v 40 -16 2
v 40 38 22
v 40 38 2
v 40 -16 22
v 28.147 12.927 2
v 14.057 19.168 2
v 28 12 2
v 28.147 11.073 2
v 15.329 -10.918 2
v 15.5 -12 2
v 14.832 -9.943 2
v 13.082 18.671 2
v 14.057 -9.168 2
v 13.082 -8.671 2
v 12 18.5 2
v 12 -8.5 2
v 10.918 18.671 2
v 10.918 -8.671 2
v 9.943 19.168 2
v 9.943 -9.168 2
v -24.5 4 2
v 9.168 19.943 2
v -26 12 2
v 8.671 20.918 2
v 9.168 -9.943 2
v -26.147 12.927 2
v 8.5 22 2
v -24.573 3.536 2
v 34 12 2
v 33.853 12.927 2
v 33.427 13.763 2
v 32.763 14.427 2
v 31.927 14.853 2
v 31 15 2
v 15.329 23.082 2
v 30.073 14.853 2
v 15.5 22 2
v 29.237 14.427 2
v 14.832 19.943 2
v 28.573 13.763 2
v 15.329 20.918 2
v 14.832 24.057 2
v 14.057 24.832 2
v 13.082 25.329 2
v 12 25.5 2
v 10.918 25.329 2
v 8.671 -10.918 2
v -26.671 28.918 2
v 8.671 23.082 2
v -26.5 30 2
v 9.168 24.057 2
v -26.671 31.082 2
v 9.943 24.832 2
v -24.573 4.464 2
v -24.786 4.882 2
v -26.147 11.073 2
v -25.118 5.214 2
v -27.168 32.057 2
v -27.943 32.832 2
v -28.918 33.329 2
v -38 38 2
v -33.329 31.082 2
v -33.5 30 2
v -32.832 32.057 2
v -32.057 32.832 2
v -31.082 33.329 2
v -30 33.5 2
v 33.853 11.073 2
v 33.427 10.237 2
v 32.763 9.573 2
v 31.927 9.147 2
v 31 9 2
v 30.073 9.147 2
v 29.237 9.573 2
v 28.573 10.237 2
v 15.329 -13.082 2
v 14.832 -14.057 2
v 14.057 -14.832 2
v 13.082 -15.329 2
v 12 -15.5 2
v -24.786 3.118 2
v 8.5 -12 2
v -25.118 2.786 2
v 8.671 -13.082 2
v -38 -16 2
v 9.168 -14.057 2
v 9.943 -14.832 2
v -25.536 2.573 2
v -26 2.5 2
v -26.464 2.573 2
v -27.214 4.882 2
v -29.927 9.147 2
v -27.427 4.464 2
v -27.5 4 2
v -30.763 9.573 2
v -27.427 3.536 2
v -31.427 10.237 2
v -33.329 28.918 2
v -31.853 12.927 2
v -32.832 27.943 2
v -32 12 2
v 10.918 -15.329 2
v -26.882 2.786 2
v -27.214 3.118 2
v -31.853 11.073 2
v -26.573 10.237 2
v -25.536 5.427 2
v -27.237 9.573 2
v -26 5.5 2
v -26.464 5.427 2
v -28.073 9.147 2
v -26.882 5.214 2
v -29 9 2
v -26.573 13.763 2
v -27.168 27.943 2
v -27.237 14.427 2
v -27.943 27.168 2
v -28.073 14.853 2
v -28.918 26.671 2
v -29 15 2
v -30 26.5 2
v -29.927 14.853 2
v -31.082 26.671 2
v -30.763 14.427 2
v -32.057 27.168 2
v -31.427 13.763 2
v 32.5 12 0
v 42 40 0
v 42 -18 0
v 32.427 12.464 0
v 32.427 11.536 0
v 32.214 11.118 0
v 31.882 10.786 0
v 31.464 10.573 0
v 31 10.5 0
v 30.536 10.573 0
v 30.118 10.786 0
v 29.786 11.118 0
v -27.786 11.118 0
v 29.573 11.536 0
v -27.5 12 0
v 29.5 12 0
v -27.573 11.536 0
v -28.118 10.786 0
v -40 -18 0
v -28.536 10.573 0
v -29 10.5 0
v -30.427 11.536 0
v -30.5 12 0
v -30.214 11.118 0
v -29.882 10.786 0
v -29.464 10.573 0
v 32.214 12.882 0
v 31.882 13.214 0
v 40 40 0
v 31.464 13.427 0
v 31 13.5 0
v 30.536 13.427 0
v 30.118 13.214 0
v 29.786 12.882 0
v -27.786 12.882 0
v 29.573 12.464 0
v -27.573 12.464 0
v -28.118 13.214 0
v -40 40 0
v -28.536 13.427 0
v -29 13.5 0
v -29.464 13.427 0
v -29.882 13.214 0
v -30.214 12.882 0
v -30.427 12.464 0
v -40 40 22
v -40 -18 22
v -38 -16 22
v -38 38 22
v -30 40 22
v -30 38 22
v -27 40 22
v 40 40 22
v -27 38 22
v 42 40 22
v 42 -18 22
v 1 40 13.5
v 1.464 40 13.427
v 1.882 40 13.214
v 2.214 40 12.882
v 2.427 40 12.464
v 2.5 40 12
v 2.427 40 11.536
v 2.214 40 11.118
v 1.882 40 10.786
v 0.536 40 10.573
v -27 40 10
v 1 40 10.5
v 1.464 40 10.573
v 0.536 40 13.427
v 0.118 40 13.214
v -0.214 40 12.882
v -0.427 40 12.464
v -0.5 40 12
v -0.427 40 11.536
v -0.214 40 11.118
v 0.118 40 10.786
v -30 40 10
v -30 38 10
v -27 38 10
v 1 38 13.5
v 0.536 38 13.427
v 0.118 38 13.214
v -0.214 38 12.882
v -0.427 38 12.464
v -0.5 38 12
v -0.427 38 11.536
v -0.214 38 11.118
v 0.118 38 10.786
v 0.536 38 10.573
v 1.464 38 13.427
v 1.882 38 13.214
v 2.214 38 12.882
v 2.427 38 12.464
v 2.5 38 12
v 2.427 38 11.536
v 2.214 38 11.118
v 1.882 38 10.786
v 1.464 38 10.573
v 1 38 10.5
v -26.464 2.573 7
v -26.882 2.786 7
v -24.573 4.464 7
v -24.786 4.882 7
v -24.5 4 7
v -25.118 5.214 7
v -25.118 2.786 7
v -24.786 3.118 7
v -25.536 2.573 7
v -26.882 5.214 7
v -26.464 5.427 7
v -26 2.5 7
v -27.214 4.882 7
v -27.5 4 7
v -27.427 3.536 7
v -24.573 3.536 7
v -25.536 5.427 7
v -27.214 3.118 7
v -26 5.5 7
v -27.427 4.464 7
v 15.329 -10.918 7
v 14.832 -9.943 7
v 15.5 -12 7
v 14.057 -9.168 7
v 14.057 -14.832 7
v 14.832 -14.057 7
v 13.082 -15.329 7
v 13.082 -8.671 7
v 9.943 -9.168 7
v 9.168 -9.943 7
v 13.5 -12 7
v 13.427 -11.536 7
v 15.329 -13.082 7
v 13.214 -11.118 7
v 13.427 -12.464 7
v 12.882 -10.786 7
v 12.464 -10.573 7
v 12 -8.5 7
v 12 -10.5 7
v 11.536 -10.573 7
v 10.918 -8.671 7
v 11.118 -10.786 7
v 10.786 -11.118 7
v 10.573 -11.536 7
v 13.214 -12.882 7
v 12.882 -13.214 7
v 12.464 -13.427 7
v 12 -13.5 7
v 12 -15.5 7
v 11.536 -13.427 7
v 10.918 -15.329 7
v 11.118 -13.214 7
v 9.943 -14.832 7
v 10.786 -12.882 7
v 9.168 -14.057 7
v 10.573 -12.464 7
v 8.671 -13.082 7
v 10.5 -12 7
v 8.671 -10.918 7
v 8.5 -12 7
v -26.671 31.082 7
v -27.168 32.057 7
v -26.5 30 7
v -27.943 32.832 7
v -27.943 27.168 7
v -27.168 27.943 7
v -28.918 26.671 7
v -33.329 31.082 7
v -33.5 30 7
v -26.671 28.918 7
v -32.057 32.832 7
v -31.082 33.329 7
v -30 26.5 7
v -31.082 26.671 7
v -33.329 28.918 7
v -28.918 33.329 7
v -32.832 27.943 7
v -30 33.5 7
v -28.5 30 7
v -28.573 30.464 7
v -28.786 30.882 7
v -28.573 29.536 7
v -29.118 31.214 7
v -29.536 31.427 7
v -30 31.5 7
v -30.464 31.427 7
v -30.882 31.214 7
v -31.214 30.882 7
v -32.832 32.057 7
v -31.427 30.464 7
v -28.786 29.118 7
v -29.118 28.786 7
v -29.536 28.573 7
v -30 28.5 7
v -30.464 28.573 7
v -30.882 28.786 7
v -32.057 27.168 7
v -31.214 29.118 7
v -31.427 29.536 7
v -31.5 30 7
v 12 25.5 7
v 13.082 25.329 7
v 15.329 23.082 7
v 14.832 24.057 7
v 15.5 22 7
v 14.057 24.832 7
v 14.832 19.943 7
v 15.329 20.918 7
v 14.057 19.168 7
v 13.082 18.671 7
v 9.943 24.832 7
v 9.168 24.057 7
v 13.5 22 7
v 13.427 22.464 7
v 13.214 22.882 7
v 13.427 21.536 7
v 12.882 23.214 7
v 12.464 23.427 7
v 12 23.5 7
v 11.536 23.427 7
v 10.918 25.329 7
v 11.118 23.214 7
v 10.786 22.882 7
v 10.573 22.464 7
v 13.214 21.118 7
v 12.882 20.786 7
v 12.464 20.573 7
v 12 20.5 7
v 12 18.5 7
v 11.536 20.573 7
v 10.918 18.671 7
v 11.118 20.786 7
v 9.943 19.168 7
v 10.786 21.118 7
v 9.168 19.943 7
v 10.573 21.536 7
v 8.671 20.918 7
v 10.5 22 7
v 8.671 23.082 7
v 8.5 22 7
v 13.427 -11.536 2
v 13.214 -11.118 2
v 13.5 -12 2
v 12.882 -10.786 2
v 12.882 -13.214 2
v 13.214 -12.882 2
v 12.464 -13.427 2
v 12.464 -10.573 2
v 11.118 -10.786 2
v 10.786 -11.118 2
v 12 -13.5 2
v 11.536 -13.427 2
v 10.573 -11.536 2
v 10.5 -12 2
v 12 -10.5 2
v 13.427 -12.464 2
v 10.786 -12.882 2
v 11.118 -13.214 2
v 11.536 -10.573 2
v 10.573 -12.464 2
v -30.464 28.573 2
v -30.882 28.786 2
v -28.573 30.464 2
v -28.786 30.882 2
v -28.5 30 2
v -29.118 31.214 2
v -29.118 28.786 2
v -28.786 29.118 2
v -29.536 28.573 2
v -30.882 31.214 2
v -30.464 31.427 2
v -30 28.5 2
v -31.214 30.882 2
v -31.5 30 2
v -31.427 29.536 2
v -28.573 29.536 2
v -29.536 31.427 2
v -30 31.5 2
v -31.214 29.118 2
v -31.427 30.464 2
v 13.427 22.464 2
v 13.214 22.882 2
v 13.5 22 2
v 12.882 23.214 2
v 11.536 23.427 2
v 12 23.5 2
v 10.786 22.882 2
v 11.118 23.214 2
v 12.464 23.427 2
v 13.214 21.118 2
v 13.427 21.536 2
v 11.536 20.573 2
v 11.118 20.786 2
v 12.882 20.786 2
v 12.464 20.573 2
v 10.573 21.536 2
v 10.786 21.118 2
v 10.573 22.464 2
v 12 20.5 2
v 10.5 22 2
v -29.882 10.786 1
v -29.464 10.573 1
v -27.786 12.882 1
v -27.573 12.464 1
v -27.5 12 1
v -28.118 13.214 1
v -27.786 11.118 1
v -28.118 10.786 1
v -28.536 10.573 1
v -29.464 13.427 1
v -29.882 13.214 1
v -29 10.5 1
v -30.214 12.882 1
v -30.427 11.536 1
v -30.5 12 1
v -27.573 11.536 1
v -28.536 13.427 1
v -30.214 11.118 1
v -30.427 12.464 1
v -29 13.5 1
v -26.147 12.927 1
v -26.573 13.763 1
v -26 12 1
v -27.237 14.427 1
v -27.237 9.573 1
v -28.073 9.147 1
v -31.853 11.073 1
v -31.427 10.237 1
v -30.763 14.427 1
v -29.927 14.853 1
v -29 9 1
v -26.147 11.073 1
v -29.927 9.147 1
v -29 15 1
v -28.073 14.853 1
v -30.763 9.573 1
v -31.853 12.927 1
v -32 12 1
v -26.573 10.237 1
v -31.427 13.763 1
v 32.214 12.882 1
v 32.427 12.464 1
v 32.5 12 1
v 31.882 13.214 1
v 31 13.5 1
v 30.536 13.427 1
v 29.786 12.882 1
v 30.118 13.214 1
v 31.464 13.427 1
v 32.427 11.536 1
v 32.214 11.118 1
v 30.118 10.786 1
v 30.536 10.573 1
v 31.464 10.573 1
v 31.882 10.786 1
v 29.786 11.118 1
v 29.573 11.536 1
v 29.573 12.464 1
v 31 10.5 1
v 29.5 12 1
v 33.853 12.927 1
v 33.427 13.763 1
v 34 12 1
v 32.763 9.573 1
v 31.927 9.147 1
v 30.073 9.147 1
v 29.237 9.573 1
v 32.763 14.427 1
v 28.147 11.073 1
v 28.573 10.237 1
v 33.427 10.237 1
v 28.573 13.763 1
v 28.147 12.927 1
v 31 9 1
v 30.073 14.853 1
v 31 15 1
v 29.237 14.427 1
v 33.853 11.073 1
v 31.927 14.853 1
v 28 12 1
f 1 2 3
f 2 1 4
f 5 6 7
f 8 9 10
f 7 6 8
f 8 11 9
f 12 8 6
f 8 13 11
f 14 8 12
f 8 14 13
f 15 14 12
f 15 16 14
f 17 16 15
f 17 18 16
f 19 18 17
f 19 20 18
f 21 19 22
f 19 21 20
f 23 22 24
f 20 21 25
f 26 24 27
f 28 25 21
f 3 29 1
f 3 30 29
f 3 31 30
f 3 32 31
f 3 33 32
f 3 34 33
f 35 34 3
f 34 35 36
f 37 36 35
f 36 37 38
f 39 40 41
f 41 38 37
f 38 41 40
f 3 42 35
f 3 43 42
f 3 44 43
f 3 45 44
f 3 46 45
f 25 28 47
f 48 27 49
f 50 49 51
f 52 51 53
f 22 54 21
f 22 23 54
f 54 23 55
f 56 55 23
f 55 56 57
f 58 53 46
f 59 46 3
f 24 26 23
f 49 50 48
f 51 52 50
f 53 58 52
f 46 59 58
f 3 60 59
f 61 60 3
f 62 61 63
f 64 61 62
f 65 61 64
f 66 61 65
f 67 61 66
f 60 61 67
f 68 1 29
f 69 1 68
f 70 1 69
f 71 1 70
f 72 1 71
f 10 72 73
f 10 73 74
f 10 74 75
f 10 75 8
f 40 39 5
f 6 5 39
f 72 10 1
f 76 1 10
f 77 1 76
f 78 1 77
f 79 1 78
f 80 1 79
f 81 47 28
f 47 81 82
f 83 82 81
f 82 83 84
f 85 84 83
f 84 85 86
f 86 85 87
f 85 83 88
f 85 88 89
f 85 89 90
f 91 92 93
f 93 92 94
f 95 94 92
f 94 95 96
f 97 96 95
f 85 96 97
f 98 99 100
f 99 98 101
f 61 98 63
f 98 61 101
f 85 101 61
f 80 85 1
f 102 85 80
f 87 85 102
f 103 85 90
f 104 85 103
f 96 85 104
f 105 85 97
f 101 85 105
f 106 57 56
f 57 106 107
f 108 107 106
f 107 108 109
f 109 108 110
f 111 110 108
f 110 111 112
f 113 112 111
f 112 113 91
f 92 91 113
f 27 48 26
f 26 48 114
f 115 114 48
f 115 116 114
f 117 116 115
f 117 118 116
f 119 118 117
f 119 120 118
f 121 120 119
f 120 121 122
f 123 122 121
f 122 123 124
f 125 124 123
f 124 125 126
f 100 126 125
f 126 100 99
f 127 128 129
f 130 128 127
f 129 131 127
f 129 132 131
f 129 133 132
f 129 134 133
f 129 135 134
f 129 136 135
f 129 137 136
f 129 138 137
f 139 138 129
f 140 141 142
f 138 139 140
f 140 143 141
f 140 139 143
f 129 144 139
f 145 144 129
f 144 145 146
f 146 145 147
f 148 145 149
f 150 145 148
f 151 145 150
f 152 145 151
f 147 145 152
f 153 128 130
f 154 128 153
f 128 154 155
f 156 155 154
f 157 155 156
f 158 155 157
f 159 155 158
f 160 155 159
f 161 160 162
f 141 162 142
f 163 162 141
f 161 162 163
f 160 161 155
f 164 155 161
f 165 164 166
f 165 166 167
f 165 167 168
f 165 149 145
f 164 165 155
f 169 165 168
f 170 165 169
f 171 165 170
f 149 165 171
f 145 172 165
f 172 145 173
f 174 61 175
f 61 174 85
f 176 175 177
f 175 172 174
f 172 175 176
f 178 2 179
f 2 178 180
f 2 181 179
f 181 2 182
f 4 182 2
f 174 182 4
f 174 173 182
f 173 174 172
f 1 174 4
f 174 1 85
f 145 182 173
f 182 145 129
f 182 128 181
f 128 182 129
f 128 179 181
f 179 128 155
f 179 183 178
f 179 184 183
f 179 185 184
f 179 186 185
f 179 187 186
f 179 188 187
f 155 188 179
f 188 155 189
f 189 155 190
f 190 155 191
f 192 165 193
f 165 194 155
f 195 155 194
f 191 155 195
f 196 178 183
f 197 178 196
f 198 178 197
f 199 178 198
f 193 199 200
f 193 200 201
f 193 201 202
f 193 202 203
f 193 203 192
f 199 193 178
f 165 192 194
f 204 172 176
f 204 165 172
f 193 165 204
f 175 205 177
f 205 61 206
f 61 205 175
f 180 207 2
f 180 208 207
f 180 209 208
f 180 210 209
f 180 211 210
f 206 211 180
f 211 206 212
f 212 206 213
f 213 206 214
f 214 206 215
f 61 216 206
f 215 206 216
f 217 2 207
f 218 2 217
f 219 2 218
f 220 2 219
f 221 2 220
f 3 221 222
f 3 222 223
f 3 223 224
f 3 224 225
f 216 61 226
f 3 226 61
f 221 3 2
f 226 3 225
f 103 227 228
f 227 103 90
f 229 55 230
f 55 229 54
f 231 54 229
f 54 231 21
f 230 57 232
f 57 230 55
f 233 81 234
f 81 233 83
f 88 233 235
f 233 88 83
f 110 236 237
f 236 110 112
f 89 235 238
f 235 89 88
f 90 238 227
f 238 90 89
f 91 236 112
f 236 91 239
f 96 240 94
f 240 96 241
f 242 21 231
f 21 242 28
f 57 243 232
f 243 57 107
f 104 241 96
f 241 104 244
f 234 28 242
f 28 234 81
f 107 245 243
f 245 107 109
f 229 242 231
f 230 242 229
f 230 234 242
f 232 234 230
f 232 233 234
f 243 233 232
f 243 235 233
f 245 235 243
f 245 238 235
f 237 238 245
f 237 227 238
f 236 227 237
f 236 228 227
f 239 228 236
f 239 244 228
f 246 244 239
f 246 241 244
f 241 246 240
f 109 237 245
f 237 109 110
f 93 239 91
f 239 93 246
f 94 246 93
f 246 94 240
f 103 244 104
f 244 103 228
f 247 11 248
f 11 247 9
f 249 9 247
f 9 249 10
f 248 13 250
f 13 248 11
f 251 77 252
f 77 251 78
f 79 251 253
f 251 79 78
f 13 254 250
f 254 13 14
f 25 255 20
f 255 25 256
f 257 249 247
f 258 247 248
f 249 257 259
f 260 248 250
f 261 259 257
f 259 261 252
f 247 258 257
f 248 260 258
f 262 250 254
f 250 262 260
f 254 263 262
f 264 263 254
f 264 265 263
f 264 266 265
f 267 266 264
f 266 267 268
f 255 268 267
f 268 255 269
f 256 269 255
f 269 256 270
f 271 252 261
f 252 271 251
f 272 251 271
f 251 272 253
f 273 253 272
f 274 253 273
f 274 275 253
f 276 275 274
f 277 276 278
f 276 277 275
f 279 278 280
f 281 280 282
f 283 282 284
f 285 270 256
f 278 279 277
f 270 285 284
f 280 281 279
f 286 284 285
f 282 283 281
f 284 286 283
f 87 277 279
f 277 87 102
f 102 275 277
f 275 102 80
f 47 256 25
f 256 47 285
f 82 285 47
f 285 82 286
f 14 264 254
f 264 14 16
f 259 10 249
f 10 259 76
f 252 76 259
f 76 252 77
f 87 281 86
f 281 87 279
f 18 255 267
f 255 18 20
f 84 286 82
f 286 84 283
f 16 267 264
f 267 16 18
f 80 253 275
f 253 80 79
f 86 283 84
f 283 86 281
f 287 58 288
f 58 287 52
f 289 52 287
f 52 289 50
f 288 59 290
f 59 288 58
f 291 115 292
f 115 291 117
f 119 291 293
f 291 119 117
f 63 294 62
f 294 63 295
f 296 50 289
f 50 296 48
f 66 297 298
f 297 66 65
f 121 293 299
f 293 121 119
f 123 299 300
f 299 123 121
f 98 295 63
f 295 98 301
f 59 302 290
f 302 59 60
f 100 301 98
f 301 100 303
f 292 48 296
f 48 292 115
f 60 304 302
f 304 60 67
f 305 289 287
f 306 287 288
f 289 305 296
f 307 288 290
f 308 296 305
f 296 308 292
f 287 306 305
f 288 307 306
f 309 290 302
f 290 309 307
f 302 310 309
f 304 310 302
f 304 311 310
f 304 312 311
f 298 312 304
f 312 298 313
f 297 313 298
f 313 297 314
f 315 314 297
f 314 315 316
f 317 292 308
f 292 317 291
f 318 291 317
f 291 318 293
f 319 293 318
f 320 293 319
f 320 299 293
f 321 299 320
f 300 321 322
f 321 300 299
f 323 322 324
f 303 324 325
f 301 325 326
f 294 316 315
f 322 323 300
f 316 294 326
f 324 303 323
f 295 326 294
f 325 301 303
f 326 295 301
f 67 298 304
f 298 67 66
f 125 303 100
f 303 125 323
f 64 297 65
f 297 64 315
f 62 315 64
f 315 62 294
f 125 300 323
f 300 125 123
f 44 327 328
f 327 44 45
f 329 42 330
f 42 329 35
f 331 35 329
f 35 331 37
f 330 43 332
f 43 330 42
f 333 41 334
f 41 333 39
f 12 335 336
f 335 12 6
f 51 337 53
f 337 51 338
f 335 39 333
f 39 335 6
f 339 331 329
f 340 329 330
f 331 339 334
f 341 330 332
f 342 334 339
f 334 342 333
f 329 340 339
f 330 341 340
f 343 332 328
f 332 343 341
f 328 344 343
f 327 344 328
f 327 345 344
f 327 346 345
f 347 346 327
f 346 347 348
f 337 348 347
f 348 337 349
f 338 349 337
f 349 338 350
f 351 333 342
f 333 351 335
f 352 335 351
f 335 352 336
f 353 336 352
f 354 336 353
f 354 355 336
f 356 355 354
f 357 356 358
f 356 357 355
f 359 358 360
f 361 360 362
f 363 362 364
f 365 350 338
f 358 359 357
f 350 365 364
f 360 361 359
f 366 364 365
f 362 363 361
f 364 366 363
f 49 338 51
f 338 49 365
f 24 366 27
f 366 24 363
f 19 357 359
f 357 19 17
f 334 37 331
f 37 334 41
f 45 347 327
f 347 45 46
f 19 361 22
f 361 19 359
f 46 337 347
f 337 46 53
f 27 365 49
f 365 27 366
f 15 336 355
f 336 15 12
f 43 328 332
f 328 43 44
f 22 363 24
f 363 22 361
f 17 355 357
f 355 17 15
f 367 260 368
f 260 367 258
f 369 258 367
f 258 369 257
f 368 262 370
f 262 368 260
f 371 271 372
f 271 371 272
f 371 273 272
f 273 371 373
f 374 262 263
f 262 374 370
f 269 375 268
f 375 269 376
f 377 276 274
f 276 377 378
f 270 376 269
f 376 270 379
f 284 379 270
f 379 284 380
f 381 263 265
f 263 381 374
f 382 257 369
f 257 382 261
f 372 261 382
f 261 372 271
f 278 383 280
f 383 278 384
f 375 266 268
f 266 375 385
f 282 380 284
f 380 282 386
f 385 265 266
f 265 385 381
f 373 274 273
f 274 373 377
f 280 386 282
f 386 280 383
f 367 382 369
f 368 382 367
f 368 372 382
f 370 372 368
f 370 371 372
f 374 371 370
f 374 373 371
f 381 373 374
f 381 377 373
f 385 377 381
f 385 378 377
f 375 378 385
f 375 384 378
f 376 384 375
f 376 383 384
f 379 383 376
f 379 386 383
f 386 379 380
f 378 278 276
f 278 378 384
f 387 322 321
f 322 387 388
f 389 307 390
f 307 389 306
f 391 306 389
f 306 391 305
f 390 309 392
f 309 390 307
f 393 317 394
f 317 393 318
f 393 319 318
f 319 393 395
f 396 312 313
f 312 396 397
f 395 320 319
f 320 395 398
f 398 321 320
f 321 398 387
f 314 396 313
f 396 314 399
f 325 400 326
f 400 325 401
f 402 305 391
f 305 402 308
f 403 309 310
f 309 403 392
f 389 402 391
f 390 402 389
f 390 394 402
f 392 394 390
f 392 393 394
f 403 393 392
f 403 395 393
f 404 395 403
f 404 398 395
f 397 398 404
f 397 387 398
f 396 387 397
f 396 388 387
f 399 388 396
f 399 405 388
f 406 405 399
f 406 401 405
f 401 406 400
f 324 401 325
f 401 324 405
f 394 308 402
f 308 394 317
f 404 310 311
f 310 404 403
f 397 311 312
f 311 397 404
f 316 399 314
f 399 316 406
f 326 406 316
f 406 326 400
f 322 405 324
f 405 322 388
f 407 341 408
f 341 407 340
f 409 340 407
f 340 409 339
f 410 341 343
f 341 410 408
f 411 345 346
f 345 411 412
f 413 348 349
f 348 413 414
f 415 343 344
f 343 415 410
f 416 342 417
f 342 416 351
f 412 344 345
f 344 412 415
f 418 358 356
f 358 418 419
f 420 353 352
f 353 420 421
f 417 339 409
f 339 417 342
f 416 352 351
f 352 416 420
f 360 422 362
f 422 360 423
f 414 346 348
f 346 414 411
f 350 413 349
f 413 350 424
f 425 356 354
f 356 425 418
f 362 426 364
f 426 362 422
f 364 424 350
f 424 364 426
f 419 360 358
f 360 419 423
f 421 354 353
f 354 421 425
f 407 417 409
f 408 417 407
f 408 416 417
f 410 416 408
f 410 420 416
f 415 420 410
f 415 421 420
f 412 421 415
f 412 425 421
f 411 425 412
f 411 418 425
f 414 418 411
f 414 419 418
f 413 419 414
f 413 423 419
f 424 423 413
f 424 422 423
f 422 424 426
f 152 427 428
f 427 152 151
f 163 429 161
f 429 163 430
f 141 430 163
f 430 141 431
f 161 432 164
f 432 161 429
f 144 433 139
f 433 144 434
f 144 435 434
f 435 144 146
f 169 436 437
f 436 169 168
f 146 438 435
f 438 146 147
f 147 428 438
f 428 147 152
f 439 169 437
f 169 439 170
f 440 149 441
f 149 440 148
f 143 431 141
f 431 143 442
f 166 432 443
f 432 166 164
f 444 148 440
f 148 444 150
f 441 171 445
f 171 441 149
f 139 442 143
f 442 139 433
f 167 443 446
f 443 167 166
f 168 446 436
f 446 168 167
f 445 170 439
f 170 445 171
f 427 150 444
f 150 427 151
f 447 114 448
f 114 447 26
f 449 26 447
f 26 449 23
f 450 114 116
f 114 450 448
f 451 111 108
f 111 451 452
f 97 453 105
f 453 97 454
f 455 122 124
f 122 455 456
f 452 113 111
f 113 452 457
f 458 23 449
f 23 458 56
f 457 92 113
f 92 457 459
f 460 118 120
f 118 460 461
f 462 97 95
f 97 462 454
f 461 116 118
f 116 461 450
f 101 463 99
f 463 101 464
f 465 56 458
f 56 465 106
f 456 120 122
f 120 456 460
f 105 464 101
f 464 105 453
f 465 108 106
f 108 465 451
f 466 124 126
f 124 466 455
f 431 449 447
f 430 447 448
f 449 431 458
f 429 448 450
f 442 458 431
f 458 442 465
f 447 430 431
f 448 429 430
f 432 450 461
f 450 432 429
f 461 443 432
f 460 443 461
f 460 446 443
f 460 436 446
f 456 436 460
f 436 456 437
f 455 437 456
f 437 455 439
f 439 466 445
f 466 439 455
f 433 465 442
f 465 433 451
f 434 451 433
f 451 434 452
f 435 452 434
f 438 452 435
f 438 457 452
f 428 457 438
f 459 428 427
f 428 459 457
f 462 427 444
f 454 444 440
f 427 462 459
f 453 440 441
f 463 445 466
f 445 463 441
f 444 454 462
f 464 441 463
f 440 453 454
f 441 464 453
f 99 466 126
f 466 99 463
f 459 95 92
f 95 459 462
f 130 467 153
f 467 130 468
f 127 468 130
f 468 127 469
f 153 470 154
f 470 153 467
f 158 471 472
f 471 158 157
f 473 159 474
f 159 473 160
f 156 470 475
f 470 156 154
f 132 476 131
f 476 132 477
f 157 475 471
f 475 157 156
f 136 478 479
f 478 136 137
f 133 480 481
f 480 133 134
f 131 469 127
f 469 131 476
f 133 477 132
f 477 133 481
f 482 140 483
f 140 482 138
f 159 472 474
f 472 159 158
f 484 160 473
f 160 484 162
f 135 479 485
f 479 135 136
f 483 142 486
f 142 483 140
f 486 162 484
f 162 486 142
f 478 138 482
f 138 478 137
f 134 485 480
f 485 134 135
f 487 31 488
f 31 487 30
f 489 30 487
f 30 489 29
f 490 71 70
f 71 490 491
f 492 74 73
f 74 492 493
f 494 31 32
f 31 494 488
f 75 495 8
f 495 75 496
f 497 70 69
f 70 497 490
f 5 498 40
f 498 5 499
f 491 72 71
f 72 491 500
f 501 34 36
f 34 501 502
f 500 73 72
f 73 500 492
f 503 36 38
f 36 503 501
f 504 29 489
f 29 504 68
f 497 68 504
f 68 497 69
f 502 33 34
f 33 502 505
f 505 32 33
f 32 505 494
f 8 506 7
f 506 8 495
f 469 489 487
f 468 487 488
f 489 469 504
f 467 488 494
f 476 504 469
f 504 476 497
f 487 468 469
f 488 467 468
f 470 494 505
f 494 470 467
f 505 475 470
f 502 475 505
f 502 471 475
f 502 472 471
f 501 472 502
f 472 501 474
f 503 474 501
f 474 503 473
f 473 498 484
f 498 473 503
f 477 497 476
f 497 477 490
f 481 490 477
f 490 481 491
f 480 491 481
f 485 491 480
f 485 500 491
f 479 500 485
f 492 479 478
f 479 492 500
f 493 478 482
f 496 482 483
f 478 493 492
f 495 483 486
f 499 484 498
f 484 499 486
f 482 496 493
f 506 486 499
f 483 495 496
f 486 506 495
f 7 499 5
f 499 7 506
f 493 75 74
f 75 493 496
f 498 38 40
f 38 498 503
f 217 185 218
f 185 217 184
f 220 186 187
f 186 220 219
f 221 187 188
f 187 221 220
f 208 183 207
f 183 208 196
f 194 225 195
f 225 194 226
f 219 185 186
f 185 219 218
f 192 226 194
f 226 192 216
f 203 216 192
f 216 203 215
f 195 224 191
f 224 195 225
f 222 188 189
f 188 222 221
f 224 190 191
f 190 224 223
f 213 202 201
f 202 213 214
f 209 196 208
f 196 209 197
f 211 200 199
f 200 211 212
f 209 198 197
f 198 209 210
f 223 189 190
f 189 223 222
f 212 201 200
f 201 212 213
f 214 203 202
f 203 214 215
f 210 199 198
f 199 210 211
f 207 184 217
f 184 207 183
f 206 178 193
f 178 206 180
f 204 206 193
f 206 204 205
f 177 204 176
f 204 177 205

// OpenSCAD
//  Boitier Passerelle MySensors   v2
// du 13/7/2017
lar=80;
prof=80;
haut=22;
ep=2;

render(convexity = 10) {




difference() {

// Partie pleine
union() {


//Fond
translate([-(lar/2),-prof/2,0]){
cube(size = [lar,prof+35,ep], center = false);
}
//Parois verticales
//Gauche
translate([-(lar/2),-prof/2,0]){
cube(size = [ep,prof+35,haut], center = false);
}
//Antenne horizontale
translate([-(lar/2),prof/2+35,0]){
cube(size = [ep+13,ep,12], center = false);
}
// Batterie paroi
translate([-(lar/2),(-prof/2)+22,0]){
cube(size = [lar,ep,haut], center = false);
}
//Droite
translate([(lar/2),-prof/2,0]){
cube(size = [ep,prof,haut], center = false);
}
//Arriere
translate([-(lar/2),(prof/2)-2,0]){
cube(size = [lar,ep,haut], center = false);
}
//Avant
translate([-(lar/2),-(prof/2),0]){
cube(size = [lar,ep,haut], center = false);
}

//Supportplaque  Gauche
translate([-(lar/2)+52-38,-(prof/2)+27+16+1,ep]){
cylinder(h = 5, r = 1.5, $fn=20, center = false);
}
//Supportplaque AV 
translate([-(lar/2)+52,-(prof/2)+27+1,ep]){
cylinder(h = 5, r = 3.5, $fn=20, center = false);
}
//Supportplaque AR Gauche pour passerelle
translate([-(lar/2)+10,(prof/2)-10,ep]){
cylinder(h = 5, r = 3.5, $fn=20, center = false);
}
//Supportplaque AR 
translate([-(lar/2)+52,-(prof/2)+27+34+1,ep]){
cylinder(h = 5, r = 3.5, $fn=20, center = false);
}




}

// Partie Creuse

union() {

//Perforations

//Suppression Fond & Supports antennes
translate([-(lar/2),prof/2,0]){
cube(size = [lar,40,ep+22], center = false);
}
//Fond fente Antenne 1
translate([-(lar/2)+5,prof/2+25,0]){
cube(size = [12,5,ep], center = false);
}
//Paroi Gauche fente Antenne 2
translate([-(lar/2),prof/2+25,haut/2+1]){
cube(size = [ep,12,5], center = false);
}
//Antennefente horizontale Antenne 3
translate([-(lar/2)+ep+3,prof/2+35,ep]){
cube(size = [10,ep,5], center = false);
}

//PerfSupportplaque Gauche 
//translate([-(lar/2)+23,-(prof/2)+7,3]){
//cylinder(h = 8, r = 1.5, $fn=20, center = false);
//}
//PerfSupportplaque AV Droit
translate([-(lar/2)+52,-(prof/2)+27+1,ep]){
cylinder(h =  8, r = 1.5, $fn=20, center = false);
}
//PerfSupportplaque AR Gauche
translate([-(lar/2)+10,(prof/2)-10,ep]){
cylinder(h =  8, r = 1.5, $fn=20, center = false);
}
//PerfSupportplaque AR Droit
translate([-(lar/2)+52,-(prof/2)+27+34+1,ep]){
cylinder(h =  8, r = 1.5, $fn=20, center = false);
}

//Perf Fixation Gauche & Droite
translate([-(lar/2)+11,-(prof/2)+52,0]){
cylinder(h =  8, r = 1.5, $fn=20, center = false);
}
translate([-(lar/2)+11,-(prof/2)+52,1]){
cylinder(h =  8, r = 3, $fn=20, center = false);
}
translate([-(lar/2)+71,-(prof/2)+52,0]){
cylinder(h =  8, r = 1.5, $fn=20, center = false);
}
translate([-(lar/2)+71,-(prof/2)+52,1]){
cylinder(h =  8, r = 3, $fn=20, center = false);
}




//Découpes Passages Fils Cloisons
// Batterie
//translate([-(lar/2)+10,-(prof/2)+22-.5,12]){
//cube(size = [5,10,10], center = false);
//}
// Cable nRF24
translate([-(lar/2)+41,(prof/2),12]) rotate ([90,0,0]){
cylinder(h =  8, r = 1.5, $fn=20, center = false);
//cube(size = [3,10,12], center = false);
}
// Perf fixation support antenne
translate([-(lar/2)+10,(prof/2)-2,10]){
cube(size = [3,10,12], center = false);
}


//Suppression bloc batterie
translate([-(lar/2),-prof/2,0]){
cube(size = [lar+2,22,ep+22], center = false);
}



//PerfFermetureBoitier AV Gauche
//translate([-(lar/2)+2+14-1.5,-(prof/2)+2+1.5,-.1]){
//cylinder(h = 5, r = 1.5, $fn=20, center = false);
//}
//PerfFermetureBoitier AV Droit
//translate([-(lar/2)+lar-22+1.5,-(prof/2)+2+1.5,-.1]){
//cylinder(h =  5, r = 1.5, $fn=20, center = false);
//}
//PerfFermetureBoitier AR Gauche
//translate([-(lar/2)+2+14-1.5,-(prof/2)+prof-3.5,-.1]){
//cylinder(h =  5, r = 1.5, $fn=20, center = false);
//}
//PerfFermetureBoitier AR Droit
//translate([-(lar/2)+lar-22+1.5,-(prof/2)+prof-3.5,-.1]){
//cylinder(h =  5, r = 1.5, $fn=20, center = false);
//}
//Découpes Avant
//Audio
//translate([-(lar/2)+18+1+28-4,-(prof/2)+-.1,12]){
//cube(size = [8,3,12], center = false);
//}
//Ch1
//translate([-(lar/2)+18+1+65-5,-(prof/2)+-.1,12]){
//cube(size = [10,3,15], center = false);
//}
//Ch2
//translate([-(lar/2)+18+1+83-5,-(prof/2)+-.1,12]){
//cube(size = [10,3,15], center = false);
//}
//Bouton M/A
//translate([-(lar/2)+lar-17,-(prof/2)+-.1,10]){
//cube(size = [13,3,20], center = false);
//}
//Découpe Droite pour Pile
//translate([-(lar/2)+lar-2.1,-(prof/2)+37,3]){
//cube(size = [3,45,35], center = false);
//}
//Perfos Attache Pile1
//translate([-(lar/2)+lar-2.1,-(prof/2)+33,20]){
//rotate([0, 90,0]){
//cylinder(h =  5, r = 2, $fn=20, center = false);
//}}
//Perfos Attache Pile2
//translate([-(lar/2)+lar-2.1,-(prof/2)+prof-5,20]){
//rotate([0, 90,0]){
//cylinder(h =  5, r = 2, $fn=20, center = false);
//}}

//Découpes Passages Fils Cloisons
//Hautparleur
//translate([-(lar/2)+16-0.1,-(prof/2)+75,26]){
//cube(size = [3,10,10], center = false);
//}
//Pile
//translate([-(lar/2)+120-0.1,-(prof/2)+70,26]){
//cube(size = [3,10,10], center = false);
//}
//Bouton M/A
//translate([-(lar/2)+120-0.1,-(prof/2)+15,26]){
//cube(size = [3,10,10], center = false);
//}





}
}

}
